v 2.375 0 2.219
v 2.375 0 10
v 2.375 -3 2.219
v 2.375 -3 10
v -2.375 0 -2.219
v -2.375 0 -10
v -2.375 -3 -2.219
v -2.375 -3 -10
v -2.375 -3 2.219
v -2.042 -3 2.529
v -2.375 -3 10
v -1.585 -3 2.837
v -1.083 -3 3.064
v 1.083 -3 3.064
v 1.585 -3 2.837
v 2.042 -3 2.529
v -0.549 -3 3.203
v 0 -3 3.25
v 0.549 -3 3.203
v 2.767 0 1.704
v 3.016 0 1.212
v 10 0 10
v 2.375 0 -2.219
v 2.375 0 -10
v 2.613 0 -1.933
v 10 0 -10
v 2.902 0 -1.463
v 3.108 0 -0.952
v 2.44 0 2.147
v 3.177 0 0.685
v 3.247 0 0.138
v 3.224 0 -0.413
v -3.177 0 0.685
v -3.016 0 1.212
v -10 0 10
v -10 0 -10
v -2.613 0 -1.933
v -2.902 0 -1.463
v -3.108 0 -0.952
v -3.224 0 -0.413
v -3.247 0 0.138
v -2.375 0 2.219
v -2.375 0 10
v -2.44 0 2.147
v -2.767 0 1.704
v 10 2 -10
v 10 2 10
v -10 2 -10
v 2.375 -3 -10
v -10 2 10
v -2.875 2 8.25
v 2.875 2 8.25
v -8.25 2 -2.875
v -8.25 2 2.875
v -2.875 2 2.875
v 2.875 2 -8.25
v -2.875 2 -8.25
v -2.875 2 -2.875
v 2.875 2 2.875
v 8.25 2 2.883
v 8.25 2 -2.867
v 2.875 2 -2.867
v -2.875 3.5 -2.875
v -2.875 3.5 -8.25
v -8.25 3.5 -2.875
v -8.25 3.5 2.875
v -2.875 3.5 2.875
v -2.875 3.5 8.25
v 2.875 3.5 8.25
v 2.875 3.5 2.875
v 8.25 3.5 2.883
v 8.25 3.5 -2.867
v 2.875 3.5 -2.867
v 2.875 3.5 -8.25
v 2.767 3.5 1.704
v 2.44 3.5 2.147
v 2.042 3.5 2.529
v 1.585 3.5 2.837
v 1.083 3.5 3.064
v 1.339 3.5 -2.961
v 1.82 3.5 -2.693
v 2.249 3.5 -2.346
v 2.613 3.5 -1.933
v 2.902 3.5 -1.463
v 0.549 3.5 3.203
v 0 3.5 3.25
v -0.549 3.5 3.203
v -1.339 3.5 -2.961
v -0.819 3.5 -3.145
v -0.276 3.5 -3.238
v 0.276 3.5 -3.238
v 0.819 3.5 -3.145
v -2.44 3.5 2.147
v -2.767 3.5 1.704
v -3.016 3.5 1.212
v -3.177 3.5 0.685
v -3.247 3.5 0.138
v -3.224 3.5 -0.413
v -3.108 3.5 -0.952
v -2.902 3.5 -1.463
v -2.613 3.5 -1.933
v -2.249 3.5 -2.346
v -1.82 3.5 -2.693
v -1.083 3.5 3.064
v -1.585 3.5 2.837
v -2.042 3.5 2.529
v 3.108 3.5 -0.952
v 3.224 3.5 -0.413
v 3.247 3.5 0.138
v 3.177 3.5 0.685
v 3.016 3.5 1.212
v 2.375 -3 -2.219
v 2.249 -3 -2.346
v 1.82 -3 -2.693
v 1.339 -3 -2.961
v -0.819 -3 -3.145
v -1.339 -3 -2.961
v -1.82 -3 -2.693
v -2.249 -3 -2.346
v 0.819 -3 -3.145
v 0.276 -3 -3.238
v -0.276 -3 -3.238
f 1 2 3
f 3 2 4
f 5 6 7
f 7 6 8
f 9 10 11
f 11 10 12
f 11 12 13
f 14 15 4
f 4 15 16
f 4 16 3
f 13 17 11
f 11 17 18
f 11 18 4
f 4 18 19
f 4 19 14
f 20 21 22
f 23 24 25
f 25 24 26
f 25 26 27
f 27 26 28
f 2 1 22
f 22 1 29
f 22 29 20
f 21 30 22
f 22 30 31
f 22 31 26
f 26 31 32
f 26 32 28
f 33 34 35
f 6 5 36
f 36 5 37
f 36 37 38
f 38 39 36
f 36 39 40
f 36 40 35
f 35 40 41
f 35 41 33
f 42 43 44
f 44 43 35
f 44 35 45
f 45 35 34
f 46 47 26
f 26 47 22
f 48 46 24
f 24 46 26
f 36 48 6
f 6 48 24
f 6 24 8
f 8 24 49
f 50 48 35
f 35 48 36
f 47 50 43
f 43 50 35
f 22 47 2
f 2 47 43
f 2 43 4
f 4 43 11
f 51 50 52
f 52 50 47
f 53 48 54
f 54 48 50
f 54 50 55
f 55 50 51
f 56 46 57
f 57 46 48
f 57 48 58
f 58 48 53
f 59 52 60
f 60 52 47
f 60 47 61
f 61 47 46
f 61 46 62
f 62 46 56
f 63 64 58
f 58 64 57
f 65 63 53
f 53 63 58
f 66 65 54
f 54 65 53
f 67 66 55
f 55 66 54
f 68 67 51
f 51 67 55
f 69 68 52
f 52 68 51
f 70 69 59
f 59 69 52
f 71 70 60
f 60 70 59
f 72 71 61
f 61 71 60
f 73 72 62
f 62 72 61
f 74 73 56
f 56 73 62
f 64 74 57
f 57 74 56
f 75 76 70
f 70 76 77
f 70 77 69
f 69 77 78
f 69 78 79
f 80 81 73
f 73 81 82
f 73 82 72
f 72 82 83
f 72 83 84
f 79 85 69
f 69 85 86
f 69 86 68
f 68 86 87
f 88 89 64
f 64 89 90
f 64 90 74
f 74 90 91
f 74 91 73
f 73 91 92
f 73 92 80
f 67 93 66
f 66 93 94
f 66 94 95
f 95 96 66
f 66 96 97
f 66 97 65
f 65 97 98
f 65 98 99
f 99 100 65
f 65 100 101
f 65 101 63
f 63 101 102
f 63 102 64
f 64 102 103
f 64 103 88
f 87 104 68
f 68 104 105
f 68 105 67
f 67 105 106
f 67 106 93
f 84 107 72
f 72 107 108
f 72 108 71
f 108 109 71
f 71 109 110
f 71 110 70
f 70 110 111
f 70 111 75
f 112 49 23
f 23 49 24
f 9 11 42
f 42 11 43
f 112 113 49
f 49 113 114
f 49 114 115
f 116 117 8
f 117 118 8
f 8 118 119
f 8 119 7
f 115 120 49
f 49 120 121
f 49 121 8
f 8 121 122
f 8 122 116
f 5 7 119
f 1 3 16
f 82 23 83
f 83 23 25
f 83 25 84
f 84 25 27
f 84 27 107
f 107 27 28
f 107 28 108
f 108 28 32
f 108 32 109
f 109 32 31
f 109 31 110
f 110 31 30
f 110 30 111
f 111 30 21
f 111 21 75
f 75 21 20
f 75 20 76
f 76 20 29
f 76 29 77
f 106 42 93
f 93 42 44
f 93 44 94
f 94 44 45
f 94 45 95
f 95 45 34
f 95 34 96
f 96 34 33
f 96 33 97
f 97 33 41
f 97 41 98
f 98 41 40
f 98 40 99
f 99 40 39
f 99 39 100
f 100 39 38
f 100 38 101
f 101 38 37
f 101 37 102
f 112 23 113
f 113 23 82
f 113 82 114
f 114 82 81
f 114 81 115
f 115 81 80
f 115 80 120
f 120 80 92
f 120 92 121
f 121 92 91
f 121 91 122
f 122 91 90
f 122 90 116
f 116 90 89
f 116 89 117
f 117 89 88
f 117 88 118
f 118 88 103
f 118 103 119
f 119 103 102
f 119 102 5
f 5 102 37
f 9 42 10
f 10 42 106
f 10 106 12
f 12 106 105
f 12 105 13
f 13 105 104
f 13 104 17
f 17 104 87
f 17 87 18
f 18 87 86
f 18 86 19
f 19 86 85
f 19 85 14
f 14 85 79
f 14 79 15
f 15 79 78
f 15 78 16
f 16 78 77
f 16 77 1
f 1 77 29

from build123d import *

# Parameters (mm, degrees)
SKETCH1_W                      = 20
SKETCH1_H                      = 20
BOSS_EXTRUDE1_DEPTH            = 2
BOSS_EXTRUDE3_DEPTH            = 1.5
SKETCH6_W                      = 4.75
SKETCH6_H                      = 20
BOSS_EXTRUDE4_DEPTH            = 3
TAP_DRILL_FOR_M2_2_HELICOIL1_D = 6.5


with BuildPart() as part:
    # Sketch1 → Boss-Extrude1 (new body)
    with BuildSketch(Plane(origin=(0, 0, 0), x_dir=(1, 0, 0), z_dir=(0, 1, 0))):
        Rectangle(SKETCH1_W, SKETCH1_H)
    extrude(amount=BOSS_EXTRUDE1_DEPTH)

    # Sketch3 → Boss-Extrude3 (add)
    with BuildSketch(Plane(origin=(0, 2, 0), x_dir=(1, 0, 0), z_dir=(0, 1, 0))):
        Polygon((-2.875, 8.25), (2.875, 8.25), (2.875, 2.867474963), (8.25, 2.867474963), (8.25, -2.882525037), (2.875, -2.875), (2.875, -8.25), (-2.875, -8.25), (-2.875, -2.875), (-8.25, -2.875), (-8.25, 2.875), (-2.875, 2.875), align=None)
    extrude(amount=BOSS_EXTRUDE3_DEPTH)

    # Sketch6 → Boss-Extrude4 (add)
    with BuildSketch(Plane.XZ):
        Rectangle(SKETCH6_W, SKETCH6_H)
    extrude(amount=BOSS_EXTRUDE4_DEPTH)

    # Tap Drill for M2.2 Helicoil1 (through all)
    with Locations(Plane.ZX.offset(3.5)):
        with Locations((0, 0)):
            Hole(TAP_DRILL_FOR_M2_2_HELICOIL1_D / 2)


solid = part.part
